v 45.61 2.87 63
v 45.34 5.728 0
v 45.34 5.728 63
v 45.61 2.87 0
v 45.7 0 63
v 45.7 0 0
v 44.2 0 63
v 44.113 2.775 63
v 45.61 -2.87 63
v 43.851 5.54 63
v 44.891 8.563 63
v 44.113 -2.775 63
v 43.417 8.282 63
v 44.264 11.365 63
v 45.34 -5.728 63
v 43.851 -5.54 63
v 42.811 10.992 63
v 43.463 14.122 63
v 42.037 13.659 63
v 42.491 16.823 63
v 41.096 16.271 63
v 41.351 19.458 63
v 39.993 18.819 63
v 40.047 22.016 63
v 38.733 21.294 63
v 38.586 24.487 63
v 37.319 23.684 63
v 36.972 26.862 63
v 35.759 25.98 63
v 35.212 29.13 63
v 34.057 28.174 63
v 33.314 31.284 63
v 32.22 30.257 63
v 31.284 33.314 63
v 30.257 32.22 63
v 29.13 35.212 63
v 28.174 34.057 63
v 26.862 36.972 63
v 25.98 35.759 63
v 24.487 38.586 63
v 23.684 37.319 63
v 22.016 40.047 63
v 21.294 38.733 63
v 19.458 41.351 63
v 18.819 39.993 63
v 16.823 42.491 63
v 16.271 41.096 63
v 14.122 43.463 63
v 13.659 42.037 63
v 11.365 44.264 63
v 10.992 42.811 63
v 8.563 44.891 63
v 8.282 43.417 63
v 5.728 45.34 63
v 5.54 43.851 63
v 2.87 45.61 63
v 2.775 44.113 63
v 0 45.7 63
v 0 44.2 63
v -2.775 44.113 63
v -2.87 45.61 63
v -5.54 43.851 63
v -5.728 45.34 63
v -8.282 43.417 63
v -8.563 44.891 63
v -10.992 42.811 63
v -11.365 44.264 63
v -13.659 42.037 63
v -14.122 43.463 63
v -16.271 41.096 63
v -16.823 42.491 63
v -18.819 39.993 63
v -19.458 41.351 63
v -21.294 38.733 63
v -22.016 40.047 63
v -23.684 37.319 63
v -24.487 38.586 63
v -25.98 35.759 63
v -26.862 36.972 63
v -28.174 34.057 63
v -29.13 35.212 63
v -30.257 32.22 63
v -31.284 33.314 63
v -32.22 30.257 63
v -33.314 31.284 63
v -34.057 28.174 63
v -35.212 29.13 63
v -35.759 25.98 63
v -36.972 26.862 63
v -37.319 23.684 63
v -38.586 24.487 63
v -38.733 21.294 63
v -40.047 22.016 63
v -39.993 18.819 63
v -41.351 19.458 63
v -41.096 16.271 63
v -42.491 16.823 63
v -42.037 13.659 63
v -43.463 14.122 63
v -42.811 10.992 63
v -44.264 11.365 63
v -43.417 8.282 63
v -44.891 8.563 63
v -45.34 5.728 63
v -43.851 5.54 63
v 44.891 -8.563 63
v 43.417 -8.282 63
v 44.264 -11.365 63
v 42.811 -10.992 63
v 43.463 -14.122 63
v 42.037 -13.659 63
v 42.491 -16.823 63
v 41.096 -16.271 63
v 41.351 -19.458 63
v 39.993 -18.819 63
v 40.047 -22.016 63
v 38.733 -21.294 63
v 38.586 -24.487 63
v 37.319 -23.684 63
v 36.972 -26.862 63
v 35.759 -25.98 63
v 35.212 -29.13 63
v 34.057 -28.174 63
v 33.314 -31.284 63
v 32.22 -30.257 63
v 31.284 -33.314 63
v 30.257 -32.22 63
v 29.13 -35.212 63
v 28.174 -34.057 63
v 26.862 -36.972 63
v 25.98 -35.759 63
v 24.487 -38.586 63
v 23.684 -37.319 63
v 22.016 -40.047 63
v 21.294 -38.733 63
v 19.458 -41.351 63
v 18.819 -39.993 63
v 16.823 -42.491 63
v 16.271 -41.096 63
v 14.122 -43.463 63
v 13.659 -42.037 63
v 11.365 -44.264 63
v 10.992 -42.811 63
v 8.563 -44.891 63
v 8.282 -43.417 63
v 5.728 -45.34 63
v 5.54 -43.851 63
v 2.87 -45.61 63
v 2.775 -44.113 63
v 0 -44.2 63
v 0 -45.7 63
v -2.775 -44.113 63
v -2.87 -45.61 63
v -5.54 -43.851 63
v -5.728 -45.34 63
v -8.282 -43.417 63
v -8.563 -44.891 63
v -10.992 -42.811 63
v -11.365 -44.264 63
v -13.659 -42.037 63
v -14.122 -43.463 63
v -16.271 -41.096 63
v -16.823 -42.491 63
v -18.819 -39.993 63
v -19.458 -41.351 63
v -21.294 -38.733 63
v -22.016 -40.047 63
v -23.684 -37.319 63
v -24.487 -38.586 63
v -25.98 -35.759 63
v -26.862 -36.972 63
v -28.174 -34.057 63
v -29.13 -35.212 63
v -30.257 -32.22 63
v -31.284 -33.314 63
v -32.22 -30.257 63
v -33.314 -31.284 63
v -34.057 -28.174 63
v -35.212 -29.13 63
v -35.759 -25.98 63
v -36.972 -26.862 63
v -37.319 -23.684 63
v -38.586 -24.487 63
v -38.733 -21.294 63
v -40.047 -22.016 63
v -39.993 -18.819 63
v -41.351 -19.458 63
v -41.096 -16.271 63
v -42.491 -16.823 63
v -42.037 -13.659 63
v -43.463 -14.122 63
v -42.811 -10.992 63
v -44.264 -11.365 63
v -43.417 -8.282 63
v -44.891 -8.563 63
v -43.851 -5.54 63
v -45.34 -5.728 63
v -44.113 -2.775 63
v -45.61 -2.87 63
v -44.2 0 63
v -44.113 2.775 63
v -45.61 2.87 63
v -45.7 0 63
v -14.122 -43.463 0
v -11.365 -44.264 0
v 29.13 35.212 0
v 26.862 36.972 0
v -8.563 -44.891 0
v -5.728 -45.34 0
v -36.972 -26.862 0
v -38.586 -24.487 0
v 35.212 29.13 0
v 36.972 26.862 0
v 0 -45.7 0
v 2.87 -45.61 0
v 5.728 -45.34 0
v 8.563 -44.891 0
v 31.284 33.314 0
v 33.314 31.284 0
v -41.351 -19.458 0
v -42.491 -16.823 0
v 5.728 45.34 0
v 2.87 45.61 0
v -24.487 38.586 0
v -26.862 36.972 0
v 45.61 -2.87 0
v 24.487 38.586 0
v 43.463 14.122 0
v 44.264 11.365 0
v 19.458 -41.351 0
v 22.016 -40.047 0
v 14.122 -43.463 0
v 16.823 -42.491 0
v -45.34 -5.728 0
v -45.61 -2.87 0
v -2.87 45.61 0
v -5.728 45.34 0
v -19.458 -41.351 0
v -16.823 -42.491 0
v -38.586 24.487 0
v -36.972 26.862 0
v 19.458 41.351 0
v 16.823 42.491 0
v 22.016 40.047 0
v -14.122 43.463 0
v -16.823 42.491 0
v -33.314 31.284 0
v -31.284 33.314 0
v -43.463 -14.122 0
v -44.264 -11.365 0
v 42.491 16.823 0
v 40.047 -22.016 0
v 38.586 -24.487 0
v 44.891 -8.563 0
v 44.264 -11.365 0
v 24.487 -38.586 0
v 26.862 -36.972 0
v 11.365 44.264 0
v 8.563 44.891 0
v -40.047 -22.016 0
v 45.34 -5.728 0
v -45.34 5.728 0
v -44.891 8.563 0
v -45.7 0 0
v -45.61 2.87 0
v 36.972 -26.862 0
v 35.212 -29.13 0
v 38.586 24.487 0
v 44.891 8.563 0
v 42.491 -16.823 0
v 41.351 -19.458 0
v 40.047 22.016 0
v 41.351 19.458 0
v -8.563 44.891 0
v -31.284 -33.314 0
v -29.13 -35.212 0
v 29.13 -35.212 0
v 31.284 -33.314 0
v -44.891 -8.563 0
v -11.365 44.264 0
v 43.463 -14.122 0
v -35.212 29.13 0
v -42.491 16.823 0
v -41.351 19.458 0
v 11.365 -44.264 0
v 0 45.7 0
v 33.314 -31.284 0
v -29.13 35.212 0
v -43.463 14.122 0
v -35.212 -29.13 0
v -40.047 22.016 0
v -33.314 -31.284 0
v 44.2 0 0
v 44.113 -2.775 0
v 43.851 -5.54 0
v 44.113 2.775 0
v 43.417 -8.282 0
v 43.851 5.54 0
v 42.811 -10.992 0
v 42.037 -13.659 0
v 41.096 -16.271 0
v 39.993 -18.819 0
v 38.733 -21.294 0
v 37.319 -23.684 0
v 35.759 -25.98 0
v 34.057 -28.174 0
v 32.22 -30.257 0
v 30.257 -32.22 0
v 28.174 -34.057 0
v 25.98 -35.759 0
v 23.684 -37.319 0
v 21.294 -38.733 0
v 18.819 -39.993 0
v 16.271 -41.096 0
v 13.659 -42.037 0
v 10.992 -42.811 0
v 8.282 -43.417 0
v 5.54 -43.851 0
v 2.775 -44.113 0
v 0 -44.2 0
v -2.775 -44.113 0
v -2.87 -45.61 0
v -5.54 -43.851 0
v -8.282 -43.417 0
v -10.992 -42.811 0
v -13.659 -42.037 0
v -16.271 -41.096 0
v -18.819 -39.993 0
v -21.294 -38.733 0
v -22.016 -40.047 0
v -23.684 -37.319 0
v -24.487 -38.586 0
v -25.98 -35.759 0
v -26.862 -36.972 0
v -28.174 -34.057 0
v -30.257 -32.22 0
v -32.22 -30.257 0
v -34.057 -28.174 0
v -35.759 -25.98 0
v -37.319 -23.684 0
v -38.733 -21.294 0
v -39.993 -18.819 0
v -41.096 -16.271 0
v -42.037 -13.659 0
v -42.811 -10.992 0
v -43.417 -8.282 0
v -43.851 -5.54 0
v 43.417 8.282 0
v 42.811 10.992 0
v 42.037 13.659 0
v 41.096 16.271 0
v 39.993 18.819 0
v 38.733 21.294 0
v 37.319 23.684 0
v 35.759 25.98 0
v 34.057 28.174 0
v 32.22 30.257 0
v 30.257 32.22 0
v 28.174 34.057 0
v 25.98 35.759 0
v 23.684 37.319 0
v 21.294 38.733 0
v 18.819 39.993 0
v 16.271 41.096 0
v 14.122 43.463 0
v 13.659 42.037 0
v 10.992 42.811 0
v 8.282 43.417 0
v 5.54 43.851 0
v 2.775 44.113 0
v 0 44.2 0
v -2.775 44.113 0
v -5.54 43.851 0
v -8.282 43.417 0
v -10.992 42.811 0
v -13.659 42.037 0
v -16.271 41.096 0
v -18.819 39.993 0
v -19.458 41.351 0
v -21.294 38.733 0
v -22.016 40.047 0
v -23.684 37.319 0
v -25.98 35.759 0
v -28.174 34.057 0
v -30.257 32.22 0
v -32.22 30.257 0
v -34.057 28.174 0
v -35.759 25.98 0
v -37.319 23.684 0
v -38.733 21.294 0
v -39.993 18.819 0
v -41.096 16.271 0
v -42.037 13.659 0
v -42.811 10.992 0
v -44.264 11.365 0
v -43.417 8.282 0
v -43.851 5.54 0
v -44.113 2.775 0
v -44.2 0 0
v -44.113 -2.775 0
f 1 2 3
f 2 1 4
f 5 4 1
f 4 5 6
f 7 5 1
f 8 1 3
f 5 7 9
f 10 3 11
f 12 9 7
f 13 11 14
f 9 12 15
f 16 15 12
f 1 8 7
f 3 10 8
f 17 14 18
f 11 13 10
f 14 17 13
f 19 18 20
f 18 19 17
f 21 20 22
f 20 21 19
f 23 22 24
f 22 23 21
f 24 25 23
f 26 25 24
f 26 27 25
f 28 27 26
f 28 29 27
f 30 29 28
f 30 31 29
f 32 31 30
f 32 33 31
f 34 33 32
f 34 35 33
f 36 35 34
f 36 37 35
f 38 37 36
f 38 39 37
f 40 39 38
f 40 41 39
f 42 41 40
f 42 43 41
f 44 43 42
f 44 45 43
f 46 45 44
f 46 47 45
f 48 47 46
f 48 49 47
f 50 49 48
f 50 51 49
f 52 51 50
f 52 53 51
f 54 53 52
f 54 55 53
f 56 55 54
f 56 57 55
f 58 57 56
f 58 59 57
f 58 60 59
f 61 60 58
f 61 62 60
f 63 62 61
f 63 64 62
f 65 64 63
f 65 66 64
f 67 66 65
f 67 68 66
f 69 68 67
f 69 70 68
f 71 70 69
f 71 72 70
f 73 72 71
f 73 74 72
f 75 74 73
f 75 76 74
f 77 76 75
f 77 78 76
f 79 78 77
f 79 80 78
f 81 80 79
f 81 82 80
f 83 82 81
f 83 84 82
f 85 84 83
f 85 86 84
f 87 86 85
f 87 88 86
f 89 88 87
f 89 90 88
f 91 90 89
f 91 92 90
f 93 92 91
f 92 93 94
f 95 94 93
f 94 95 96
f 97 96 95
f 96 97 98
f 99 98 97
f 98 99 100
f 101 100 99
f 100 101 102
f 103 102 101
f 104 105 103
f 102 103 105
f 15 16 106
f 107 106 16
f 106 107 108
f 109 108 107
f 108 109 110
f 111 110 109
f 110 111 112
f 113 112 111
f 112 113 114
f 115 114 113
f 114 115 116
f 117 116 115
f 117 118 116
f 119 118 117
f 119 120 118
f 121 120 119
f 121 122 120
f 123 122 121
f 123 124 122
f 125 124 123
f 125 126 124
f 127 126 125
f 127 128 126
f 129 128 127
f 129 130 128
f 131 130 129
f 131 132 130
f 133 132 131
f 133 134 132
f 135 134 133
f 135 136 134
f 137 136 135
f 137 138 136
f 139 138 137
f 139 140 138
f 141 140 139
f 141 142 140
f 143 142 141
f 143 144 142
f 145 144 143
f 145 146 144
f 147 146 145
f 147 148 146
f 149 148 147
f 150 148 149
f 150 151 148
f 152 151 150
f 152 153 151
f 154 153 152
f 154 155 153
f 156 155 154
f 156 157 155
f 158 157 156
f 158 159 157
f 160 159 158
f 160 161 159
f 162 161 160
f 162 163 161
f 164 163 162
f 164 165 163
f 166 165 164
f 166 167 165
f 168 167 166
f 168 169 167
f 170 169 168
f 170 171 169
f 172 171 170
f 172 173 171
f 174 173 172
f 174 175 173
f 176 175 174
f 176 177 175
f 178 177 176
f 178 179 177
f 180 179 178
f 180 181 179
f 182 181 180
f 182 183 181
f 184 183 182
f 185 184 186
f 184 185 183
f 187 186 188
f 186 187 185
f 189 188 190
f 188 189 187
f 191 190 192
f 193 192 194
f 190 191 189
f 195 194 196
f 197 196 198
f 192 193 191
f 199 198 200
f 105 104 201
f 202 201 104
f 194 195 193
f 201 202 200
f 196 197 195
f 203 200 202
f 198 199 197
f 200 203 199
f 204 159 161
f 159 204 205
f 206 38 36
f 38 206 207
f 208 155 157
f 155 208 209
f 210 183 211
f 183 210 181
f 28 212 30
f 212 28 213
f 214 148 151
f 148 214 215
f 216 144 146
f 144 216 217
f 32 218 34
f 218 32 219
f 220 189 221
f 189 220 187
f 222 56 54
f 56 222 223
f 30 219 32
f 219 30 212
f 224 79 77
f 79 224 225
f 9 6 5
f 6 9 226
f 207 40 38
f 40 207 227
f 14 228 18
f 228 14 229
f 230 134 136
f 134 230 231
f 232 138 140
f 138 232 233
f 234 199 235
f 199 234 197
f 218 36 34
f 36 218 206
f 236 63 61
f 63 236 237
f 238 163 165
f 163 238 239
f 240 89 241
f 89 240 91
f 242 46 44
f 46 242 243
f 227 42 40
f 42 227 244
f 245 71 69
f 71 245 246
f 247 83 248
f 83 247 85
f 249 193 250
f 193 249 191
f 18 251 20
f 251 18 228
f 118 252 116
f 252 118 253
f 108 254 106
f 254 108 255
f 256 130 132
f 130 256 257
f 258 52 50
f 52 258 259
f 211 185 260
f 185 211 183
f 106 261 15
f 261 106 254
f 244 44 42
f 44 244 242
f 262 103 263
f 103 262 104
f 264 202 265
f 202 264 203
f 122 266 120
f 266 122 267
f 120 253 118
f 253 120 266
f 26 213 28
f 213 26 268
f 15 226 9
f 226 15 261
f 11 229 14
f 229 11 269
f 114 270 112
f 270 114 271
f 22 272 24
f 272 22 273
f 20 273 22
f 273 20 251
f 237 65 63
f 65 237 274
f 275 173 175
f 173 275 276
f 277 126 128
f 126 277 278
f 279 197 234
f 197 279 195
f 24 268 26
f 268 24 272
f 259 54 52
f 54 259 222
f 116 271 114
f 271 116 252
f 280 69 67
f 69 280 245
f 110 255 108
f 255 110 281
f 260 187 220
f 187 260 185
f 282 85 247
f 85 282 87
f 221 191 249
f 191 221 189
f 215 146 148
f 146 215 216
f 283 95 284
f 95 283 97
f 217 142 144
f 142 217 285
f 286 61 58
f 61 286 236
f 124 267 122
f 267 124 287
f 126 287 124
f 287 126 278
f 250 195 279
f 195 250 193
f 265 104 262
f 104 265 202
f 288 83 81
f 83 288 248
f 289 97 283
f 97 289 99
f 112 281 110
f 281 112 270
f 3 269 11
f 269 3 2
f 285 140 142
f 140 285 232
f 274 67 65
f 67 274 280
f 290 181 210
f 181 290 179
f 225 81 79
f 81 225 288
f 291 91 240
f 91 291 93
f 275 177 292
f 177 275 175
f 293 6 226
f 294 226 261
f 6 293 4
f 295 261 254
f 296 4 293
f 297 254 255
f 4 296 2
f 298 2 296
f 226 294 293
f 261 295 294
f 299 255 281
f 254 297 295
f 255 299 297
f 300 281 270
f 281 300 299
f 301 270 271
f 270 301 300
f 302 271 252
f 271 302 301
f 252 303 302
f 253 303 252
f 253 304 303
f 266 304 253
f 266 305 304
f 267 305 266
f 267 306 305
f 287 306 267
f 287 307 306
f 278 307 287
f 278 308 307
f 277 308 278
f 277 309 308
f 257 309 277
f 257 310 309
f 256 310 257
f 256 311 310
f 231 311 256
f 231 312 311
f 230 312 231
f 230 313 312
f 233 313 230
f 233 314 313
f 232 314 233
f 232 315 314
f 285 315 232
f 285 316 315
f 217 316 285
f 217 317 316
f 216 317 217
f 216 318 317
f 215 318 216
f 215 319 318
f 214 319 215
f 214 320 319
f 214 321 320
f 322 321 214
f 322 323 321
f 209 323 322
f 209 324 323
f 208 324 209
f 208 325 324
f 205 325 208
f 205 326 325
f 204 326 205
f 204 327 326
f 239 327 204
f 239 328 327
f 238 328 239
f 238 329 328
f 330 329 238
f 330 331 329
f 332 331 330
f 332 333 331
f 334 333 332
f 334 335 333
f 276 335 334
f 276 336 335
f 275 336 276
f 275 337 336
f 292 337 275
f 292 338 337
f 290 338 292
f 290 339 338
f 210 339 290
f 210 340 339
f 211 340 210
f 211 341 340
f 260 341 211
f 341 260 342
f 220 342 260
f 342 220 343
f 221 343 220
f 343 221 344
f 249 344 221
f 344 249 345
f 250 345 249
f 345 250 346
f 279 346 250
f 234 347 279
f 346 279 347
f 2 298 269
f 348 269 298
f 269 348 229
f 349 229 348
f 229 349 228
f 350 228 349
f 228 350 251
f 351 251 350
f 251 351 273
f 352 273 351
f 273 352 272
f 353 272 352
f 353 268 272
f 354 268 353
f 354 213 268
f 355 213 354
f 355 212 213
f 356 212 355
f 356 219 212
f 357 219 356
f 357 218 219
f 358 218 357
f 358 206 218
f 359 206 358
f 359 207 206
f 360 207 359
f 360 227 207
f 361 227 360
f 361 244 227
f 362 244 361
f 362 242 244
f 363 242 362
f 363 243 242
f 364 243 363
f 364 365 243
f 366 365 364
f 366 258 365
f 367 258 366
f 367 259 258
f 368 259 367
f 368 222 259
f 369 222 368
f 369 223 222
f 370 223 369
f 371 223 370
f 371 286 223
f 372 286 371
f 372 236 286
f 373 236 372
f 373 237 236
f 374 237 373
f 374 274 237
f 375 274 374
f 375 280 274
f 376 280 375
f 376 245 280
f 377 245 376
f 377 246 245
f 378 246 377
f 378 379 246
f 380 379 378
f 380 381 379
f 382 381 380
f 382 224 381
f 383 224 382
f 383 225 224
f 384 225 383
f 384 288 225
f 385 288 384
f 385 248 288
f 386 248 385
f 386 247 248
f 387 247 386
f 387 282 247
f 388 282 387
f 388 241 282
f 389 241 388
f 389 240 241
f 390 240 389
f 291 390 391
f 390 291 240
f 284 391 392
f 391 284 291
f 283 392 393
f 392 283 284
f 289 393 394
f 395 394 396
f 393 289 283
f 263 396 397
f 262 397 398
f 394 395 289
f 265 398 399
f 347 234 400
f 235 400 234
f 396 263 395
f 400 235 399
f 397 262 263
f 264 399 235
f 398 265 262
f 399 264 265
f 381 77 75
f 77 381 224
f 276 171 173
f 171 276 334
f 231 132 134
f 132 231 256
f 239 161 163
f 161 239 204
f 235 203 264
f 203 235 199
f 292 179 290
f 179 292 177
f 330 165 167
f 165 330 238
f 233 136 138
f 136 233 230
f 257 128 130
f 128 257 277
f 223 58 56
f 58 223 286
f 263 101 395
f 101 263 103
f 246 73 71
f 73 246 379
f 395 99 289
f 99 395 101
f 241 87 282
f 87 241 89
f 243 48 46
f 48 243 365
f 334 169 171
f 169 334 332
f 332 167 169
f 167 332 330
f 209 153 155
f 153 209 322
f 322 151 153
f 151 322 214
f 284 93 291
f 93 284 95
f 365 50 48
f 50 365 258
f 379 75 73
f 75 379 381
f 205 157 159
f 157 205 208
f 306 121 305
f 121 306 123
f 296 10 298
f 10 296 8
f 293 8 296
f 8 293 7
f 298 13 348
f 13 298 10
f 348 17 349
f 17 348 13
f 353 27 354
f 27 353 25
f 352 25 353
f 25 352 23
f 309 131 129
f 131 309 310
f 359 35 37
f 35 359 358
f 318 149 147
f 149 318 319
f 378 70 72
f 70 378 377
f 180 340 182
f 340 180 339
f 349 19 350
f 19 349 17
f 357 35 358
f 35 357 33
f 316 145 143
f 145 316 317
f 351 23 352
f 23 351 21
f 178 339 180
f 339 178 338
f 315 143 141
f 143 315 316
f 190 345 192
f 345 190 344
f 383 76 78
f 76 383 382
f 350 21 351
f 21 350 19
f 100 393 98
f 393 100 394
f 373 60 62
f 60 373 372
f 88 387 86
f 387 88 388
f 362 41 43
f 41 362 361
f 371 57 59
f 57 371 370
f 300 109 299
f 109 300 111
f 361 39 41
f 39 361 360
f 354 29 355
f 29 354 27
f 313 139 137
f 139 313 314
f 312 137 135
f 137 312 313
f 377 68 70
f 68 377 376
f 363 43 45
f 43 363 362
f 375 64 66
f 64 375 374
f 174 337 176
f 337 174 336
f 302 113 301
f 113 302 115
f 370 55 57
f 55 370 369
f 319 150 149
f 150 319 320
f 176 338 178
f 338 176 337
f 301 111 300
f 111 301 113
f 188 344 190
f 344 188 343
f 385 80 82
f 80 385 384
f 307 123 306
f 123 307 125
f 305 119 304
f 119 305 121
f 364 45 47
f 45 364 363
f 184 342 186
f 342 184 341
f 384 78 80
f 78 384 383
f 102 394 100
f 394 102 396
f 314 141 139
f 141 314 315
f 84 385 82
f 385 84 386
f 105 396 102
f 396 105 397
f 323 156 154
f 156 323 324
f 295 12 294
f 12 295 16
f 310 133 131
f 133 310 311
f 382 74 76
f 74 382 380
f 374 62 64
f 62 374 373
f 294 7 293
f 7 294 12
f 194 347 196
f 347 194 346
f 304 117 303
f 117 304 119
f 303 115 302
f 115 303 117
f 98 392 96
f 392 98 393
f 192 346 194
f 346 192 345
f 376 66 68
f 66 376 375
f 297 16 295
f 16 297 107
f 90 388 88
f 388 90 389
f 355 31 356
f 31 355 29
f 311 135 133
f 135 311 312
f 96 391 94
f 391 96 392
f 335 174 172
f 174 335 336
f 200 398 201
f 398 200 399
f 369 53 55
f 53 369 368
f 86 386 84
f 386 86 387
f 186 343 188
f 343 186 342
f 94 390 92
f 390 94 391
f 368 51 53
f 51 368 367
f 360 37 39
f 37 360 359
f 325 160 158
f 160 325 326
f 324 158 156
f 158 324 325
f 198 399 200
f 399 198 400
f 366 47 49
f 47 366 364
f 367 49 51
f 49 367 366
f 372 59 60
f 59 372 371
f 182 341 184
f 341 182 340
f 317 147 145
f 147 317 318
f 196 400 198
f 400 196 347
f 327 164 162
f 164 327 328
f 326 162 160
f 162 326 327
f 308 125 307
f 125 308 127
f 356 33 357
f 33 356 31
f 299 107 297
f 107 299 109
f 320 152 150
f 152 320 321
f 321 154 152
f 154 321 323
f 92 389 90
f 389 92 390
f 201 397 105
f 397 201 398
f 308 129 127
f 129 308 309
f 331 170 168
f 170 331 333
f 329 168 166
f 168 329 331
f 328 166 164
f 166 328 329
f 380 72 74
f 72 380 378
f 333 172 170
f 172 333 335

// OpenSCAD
$fn = 100;

wall_thickness = 3;

// Petri dish / membrane holder
petri_inner_diameter = 67;

// Legs
leg_diameter = 6;
leg_height = 60;

// Adjustable parameters
outer_diameter = petri_inner_diameter + 2*wall_thickness + leg_diameter*2 + 1.4;

module blackout_cover() {
  difference() {
      cylinder(h = leg_height+wall_thickness, d = outer_diameter+2+wall_thickness);
      cylinder(h = leg_height+wall_thickness, d = outer_diameter+2);
  }
}

// Render
blackout_cover();
